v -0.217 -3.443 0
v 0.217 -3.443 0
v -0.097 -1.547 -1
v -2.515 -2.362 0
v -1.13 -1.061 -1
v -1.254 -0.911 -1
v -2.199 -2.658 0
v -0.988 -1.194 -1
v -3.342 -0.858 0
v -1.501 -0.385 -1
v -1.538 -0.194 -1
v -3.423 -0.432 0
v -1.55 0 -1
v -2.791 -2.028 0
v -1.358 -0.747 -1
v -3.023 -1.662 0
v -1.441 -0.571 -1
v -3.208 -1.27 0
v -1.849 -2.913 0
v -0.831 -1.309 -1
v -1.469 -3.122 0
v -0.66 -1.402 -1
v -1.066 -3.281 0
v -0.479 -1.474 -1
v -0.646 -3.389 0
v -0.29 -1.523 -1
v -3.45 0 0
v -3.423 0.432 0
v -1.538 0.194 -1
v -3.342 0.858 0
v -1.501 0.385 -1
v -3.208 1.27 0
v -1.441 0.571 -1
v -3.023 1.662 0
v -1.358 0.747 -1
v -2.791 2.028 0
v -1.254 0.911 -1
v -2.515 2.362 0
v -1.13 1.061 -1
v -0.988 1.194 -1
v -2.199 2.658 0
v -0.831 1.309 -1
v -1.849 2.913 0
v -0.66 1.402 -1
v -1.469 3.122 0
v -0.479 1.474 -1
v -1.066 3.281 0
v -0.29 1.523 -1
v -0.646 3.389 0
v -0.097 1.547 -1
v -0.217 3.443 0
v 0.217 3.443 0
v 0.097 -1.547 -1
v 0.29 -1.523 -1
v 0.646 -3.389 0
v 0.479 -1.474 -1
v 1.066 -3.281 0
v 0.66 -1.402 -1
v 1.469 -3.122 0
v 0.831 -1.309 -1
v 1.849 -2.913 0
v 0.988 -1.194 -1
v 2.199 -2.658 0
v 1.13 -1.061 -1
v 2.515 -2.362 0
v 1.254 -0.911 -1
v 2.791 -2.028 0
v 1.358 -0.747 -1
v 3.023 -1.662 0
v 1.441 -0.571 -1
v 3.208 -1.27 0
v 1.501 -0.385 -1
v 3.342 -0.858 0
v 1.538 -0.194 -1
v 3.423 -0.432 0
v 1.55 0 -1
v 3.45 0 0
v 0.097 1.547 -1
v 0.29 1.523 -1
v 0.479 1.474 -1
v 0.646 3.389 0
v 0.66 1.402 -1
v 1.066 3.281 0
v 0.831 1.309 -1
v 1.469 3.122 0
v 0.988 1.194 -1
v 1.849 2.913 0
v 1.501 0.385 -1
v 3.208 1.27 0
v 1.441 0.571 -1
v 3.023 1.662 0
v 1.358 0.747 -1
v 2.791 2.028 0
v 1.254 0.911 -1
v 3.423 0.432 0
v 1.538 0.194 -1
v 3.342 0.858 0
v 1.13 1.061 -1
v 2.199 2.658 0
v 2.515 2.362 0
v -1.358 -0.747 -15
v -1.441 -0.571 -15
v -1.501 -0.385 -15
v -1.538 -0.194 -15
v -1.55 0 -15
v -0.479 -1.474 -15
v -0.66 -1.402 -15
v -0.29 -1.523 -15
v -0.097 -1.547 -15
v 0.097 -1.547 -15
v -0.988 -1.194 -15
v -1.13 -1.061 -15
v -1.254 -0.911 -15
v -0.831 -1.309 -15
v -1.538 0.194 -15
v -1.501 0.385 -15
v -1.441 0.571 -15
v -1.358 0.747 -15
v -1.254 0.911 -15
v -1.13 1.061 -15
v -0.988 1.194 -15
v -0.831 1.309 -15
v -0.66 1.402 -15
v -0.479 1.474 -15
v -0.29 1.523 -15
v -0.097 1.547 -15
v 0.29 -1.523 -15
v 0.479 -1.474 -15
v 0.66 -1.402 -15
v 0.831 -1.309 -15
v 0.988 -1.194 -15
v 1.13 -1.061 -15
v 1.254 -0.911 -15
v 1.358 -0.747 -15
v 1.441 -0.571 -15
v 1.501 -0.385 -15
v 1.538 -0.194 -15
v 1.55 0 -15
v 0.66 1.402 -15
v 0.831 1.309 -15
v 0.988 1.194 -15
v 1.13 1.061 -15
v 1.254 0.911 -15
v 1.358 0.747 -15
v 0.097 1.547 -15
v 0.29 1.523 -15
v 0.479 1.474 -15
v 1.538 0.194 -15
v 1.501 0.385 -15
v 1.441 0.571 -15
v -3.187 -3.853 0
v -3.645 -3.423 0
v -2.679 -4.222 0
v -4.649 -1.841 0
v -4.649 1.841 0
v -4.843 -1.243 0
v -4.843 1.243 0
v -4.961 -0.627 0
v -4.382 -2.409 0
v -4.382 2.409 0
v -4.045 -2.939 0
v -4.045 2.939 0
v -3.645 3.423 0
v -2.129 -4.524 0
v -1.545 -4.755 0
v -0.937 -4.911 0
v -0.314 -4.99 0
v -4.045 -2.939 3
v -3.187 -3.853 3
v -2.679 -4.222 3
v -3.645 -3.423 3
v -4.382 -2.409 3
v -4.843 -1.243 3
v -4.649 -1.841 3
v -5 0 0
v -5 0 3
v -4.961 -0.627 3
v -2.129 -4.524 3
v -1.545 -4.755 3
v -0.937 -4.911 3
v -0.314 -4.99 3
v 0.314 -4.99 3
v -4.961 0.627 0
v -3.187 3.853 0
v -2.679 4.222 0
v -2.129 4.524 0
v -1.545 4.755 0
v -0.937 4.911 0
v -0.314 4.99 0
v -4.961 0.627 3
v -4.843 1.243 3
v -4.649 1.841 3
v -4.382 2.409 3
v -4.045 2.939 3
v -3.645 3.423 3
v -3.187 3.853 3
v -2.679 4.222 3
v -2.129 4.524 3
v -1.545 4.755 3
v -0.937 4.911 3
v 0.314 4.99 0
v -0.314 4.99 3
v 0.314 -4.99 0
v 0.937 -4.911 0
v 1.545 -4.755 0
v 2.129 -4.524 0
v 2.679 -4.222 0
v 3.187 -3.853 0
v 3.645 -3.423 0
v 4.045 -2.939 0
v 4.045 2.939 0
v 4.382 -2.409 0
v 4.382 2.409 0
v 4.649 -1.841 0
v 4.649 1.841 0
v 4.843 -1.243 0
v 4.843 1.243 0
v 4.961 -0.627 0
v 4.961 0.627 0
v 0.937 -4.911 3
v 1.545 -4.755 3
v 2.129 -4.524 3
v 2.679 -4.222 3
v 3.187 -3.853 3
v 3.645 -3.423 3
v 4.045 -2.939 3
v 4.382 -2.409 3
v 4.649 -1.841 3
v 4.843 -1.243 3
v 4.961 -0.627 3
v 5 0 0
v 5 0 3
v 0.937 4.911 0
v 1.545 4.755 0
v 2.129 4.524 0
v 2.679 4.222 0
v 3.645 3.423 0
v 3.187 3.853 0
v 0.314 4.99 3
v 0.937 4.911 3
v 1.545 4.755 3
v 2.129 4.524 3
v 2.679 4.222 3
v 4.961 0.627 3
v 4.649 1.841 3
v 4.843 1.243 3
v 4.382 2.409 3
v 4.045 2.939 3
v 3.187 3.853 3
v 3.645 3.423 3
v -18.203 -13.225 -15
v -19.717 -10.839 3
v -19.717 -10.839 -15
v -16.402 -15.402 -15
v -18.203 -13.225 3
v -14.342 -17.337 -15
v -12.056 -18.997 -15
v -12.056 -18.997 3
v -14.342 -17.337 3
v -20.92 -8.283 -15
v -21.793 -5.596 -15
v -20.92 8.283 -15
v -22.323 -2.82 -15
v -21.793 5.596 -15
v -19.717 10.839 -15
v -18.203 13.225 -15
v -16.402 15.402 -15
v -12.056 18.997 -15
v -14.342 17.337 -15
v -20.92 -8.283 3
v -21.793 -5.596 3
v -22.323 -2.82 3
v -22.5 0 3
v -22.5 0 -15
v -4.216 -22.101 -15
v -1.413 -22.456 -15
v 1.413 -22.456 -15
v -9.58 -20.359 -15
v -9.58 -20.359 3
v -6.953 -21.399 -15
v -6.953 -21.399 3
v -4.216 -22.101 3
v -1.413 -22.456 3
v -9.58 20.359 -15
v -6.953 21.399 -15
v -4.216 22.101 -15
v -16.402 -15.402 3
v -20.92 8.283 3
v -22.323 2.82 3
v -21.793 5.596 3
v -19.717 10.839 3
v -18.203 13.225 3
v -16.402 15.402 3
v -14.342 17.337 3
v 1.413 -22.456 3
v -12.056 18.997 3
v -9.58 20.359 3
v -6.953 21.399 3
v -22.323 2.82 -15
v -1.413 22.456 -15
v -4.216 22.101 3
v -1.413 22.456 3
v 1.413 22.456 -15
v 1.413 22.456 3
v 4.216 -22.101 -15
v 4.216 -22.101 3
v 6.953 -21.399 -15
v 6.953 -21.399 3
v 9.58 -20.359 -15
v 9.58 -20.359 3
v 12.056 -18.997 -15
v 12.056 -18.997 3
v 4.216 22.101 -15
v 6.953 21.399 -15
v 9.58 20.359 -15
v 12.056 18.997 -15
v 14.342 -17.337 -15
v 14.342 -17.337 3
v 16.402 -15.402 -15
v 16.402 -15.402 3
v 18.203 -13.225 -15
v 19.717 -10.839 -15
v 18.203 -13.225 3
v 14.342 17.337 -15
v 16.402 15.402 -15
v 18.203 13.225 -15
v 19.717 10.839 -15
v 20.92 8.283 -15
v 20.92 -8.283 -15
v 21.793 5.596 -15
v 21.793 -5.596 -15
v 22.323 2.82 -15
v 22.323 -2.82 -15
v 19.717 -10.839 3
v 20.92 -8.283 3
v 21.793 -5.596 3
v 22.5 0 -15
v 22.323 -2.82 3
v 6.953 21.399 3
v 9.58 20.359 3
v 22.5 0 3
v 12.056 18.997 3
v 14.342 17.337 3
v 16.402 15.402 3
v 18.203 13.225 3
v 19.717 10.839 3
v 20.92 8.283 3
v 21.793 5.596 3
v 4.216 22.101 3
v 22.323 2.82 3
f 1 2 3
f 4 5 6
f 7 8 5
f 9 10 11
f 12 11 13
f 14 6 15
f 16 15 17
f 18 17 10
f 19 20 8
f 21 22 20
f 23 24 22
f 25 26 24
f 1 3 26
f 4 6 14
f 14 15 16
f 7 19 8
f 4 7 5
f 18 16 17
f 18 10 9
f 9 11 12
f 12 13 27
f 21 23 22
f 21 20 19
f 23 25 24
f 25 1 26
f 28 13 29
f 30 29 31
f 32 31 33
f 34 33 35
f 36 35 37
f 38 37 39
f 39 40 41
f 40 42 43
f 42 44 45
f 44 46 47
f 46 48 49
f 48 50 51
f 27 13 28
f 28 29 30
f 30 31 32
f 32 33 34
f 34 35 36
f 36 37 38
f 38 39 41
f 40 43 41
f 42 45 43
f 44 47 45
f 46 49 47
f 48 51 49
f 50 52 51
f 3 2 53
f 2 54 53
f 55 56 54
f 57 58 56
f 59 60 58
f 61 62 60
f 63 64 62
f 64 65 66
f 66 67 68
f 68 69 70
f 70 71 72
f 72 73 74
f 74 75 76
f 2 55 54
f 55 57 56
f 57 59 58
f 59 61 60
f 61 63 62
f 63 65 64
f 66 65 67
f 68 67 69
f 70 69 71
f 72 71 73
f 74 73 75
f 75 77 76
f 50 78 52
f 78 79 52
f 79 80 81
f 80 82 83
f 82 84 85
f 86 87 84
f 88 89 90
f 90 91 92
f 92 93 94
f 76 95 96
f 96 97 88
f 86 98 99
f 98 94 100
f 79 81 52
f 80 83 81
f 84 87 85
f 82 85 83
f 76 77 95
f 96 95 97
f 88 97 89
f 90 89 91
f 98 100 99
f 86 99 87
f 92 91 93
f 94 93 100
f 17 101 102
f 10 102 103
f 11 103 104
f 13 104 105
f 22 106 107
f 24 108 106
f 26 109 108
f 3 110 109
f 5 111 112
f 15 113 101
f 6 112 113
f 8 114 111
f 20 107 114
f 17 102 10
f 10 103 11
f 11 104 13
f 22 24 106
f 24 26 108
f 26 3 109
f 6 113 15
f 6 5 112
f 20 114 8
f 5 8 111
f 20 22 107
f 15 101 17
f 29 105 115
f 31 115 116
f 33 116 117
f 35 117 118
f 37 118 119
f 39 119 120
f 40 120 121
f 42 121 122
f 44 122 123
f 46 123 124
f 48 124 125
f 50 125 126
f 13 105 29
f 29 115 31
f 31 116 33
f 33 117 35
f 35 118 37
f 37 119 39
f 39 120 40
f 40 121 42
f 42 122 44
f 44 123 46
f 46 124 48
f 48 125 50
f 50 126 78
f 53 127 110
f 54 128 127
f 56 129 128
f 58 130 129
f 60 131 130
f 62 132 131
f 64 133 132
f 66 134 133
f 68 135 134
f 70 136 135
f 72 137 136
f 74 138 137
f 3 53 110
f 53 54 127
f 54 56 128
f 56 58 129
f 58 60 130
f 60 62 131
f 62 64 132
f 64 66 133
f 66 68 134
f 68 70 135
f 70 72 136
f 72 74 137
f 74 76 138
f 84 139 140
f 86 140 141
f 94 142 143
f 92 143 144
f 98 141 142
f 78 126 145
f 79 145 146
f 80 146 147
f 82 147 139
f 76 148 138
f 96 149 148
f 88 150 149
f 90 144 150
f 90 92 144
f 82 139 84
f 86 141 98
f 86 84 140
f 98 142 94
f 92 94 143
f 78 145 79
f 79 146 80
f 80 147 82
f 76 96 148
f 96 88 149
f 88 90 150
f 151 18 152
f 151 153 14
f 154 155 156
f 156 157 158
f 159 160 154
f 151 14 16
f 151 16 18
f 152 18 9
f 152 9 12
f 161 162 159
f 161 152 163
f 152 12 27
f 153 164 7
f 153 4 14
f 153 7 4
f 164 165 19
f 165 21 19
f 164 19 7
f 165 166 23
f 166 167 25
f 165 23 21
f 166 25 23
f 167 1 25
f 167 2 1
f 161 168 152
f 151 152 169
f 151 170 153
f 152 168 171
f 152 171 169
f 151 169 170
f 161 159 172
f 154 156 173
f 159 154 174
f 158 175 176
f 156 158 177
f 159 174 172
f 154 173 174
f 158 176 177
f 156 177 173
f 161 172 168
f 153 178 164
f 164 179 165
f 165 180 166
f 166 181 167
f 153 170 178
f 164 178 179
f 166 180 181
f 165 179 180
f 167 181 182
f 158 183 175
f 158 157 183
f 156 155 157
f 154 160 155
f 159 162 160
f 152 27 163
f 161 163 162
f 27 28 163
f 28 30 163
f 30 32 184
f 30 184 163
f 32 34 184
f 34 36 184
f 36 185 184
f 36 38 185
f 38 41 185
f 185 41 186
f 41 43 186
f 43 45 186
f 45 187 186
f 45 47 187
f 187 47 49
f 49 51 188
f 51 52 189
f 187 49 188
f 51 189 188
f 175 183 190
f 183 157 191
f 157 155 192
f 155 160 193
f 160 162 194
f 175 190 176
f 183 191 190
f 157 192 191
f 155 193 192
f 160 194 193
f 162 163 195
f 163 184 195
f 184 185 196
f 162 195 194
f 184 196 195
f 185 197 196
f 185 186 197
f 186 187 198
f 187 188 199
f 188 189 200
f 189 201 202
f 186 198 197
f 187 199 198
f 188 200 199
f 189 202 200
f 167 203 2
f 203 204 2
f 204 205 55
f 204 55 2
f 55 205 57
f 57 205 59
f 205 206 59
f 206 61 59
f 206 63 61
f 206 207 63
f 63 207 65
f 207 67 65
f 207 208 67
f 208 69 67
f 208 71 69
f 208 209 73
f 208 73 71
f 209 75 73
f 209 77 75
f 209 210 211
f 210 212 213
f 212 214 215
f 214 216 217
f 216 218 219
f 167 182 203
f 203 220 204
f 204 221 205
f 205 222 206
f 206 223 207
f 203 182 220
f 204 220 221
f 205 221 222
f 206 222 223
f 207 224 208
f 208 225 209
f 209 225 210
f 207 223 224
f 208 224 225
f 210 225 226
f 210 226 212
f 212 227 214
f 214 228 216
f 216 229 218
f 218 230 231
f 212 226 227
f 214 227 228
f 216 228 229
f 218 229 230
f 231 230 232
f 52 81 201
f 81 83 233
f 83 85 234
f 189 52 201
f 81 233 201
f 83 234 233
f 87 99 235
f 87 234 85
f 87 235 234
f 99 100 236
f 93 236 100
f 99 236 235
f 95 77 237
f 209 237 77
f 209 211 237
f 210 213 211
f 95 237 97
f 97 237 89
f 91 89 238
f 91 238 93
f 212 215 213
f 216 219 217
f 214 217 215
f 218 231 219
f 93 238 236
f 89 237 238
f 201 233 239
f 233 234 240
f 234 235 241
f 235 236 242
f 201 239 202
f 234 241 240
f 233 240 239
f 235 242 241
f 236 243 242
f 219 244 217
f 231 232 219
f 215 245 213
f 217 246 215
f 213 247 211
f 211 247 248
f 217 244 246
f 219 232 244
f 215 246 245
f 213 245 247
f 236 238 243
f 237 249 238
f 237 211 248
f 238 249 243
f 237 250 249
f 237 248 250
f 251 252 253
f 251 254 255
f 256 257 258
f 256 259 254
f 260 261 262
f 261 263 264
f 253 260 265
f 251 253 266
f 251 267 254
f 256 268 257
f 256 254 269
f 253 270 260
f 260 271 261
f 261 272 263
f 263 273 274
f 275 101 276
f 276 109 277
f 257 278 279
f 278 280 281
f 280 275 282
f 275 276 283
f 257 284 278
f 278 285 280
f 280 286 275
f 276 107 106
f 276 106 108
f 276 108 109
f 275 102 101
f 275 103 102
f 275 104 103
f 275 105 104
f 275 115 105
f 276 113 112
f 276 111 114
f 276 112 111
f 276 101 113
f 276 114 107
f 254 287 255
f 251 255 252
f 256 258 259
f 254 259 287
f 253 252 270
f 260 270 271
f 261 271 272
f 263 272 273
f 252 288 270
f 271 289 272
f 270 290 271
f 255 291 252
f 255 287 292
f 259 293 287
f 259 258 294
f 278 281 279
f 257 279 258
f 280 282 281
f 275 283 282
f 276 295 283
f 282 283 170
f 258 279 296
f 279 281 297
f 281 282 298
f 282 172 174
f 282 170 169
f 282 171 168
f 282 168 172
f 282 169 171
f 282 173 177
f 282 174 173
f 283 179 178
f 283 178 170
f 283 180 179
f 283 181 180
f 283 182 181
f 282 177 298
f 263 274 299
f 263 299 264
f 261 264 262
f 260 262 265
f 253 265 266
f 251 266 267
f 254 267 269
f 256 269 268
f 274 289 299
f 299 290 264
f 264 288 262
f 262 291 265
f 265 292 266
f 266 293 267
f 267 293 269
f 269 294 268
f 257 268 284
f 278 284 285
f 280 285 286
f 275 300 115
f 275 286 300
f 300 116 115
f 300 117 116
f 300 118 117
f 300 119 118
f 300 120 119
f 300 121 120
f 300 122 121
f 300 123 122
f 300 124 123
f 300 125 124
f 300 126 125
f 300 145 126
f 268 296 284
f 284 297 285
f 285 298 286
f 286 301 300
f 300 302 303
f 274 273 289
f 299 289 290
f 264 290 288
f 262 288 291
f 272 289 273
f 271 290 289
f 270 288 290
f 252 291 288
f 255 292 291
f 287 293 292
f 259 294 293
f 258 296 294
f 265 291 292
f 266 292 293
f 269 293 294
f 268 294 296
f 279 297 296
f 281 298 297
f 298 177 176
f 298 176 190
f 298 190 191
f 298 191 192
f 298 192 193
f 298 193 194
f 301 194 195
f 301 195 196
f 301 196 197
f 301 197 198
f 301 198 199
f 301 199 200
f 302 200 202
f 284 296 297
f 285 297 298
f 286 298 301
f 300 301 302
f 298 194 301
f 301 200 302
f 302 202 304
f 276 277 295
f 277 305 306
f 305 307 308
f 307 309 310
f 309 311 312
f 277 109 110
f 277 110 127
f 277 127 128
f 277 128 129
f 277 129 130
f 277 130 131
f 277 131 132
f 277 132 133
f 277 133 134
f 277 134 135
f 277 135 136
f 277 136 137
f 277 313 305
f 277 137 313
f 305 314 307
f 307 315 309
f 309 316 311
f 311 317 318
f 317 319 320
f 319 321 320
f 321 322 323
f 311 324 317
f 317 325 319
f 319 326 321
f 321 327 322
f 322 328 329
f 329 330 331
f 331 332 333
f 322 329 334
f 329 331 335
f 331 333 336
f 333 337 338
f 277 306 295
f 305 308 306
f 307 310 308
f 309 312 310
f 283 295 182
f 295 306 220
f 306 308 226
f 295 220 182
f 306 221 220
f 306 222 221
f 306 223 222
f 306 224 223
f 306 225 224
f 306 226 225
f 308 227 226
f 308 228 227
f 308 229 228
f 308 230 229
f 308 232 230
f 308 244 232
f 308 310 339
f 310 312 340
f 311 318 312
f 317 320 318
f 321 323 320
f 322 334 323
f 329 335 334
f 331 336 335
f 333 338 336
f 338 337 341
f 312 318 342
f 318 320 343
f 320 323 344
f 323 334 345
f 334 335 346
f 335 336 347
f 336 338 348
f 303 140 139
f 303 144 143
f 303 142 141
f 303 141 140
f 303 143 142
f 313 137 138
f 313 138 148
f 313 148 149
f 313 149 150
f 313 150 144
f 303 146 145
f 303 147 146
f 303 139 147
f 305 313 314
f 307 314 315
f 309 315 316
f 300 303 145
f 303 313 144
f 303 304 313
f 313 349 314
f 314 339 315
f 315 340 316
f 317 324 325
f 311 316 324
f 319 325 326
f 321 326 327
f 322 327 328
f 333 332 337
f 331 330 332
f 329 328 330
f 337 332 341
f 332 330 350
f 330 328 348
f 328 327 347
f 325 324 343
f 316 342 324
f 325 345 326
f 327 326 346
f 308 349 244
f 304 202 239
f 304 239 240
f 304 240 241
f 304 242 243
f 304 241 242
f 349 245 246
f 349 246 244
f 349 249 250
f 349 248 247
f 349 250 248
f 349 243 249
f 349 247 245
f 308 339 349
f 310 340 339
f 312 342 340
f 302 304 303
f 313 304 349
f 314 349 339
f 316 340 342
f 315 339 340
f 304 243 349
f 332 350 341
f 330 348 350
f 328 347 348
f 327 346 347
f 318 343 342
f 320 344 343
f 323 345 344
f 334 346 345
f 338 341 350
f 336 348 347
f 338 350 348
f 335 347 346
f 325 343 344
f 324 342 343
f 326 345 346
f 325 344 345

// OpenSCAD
$fn = 50;


difference() {
	union() {
		translate(v = [0, 0, -15.0000000000]) {
			cylinder(h = 18, r = 22.5000000000);
		}
	}
	union() {
		translate(v = [0, 0, 0]) {
			rotate(a = [0, 0, 0]) {
				difference() {
					union() {
						translate(v = [0, 0, -18.0000000000]) {
							cylinder(h = 18, r = 1.2500000000);
						}
						translate(v = [0, 0, -1.0000000000]) {
							cylinder(h = 1.0000000000, r1 = 1.5500000000, r2 = 3.4500000000);
						}
						translate(v = [0, 0, -18.0000000000]) {
							cylinder(h = 18, r = 1.5500000000);
						}
						translate(v = [0, 0, -18.0000000000]) {
							cylinder(h = 18, r = 1.2500000000);
						}
					}
					union();
				}
			}
		}
		#cylinder(h = 3, r = 5.0000000000);
	}
}
